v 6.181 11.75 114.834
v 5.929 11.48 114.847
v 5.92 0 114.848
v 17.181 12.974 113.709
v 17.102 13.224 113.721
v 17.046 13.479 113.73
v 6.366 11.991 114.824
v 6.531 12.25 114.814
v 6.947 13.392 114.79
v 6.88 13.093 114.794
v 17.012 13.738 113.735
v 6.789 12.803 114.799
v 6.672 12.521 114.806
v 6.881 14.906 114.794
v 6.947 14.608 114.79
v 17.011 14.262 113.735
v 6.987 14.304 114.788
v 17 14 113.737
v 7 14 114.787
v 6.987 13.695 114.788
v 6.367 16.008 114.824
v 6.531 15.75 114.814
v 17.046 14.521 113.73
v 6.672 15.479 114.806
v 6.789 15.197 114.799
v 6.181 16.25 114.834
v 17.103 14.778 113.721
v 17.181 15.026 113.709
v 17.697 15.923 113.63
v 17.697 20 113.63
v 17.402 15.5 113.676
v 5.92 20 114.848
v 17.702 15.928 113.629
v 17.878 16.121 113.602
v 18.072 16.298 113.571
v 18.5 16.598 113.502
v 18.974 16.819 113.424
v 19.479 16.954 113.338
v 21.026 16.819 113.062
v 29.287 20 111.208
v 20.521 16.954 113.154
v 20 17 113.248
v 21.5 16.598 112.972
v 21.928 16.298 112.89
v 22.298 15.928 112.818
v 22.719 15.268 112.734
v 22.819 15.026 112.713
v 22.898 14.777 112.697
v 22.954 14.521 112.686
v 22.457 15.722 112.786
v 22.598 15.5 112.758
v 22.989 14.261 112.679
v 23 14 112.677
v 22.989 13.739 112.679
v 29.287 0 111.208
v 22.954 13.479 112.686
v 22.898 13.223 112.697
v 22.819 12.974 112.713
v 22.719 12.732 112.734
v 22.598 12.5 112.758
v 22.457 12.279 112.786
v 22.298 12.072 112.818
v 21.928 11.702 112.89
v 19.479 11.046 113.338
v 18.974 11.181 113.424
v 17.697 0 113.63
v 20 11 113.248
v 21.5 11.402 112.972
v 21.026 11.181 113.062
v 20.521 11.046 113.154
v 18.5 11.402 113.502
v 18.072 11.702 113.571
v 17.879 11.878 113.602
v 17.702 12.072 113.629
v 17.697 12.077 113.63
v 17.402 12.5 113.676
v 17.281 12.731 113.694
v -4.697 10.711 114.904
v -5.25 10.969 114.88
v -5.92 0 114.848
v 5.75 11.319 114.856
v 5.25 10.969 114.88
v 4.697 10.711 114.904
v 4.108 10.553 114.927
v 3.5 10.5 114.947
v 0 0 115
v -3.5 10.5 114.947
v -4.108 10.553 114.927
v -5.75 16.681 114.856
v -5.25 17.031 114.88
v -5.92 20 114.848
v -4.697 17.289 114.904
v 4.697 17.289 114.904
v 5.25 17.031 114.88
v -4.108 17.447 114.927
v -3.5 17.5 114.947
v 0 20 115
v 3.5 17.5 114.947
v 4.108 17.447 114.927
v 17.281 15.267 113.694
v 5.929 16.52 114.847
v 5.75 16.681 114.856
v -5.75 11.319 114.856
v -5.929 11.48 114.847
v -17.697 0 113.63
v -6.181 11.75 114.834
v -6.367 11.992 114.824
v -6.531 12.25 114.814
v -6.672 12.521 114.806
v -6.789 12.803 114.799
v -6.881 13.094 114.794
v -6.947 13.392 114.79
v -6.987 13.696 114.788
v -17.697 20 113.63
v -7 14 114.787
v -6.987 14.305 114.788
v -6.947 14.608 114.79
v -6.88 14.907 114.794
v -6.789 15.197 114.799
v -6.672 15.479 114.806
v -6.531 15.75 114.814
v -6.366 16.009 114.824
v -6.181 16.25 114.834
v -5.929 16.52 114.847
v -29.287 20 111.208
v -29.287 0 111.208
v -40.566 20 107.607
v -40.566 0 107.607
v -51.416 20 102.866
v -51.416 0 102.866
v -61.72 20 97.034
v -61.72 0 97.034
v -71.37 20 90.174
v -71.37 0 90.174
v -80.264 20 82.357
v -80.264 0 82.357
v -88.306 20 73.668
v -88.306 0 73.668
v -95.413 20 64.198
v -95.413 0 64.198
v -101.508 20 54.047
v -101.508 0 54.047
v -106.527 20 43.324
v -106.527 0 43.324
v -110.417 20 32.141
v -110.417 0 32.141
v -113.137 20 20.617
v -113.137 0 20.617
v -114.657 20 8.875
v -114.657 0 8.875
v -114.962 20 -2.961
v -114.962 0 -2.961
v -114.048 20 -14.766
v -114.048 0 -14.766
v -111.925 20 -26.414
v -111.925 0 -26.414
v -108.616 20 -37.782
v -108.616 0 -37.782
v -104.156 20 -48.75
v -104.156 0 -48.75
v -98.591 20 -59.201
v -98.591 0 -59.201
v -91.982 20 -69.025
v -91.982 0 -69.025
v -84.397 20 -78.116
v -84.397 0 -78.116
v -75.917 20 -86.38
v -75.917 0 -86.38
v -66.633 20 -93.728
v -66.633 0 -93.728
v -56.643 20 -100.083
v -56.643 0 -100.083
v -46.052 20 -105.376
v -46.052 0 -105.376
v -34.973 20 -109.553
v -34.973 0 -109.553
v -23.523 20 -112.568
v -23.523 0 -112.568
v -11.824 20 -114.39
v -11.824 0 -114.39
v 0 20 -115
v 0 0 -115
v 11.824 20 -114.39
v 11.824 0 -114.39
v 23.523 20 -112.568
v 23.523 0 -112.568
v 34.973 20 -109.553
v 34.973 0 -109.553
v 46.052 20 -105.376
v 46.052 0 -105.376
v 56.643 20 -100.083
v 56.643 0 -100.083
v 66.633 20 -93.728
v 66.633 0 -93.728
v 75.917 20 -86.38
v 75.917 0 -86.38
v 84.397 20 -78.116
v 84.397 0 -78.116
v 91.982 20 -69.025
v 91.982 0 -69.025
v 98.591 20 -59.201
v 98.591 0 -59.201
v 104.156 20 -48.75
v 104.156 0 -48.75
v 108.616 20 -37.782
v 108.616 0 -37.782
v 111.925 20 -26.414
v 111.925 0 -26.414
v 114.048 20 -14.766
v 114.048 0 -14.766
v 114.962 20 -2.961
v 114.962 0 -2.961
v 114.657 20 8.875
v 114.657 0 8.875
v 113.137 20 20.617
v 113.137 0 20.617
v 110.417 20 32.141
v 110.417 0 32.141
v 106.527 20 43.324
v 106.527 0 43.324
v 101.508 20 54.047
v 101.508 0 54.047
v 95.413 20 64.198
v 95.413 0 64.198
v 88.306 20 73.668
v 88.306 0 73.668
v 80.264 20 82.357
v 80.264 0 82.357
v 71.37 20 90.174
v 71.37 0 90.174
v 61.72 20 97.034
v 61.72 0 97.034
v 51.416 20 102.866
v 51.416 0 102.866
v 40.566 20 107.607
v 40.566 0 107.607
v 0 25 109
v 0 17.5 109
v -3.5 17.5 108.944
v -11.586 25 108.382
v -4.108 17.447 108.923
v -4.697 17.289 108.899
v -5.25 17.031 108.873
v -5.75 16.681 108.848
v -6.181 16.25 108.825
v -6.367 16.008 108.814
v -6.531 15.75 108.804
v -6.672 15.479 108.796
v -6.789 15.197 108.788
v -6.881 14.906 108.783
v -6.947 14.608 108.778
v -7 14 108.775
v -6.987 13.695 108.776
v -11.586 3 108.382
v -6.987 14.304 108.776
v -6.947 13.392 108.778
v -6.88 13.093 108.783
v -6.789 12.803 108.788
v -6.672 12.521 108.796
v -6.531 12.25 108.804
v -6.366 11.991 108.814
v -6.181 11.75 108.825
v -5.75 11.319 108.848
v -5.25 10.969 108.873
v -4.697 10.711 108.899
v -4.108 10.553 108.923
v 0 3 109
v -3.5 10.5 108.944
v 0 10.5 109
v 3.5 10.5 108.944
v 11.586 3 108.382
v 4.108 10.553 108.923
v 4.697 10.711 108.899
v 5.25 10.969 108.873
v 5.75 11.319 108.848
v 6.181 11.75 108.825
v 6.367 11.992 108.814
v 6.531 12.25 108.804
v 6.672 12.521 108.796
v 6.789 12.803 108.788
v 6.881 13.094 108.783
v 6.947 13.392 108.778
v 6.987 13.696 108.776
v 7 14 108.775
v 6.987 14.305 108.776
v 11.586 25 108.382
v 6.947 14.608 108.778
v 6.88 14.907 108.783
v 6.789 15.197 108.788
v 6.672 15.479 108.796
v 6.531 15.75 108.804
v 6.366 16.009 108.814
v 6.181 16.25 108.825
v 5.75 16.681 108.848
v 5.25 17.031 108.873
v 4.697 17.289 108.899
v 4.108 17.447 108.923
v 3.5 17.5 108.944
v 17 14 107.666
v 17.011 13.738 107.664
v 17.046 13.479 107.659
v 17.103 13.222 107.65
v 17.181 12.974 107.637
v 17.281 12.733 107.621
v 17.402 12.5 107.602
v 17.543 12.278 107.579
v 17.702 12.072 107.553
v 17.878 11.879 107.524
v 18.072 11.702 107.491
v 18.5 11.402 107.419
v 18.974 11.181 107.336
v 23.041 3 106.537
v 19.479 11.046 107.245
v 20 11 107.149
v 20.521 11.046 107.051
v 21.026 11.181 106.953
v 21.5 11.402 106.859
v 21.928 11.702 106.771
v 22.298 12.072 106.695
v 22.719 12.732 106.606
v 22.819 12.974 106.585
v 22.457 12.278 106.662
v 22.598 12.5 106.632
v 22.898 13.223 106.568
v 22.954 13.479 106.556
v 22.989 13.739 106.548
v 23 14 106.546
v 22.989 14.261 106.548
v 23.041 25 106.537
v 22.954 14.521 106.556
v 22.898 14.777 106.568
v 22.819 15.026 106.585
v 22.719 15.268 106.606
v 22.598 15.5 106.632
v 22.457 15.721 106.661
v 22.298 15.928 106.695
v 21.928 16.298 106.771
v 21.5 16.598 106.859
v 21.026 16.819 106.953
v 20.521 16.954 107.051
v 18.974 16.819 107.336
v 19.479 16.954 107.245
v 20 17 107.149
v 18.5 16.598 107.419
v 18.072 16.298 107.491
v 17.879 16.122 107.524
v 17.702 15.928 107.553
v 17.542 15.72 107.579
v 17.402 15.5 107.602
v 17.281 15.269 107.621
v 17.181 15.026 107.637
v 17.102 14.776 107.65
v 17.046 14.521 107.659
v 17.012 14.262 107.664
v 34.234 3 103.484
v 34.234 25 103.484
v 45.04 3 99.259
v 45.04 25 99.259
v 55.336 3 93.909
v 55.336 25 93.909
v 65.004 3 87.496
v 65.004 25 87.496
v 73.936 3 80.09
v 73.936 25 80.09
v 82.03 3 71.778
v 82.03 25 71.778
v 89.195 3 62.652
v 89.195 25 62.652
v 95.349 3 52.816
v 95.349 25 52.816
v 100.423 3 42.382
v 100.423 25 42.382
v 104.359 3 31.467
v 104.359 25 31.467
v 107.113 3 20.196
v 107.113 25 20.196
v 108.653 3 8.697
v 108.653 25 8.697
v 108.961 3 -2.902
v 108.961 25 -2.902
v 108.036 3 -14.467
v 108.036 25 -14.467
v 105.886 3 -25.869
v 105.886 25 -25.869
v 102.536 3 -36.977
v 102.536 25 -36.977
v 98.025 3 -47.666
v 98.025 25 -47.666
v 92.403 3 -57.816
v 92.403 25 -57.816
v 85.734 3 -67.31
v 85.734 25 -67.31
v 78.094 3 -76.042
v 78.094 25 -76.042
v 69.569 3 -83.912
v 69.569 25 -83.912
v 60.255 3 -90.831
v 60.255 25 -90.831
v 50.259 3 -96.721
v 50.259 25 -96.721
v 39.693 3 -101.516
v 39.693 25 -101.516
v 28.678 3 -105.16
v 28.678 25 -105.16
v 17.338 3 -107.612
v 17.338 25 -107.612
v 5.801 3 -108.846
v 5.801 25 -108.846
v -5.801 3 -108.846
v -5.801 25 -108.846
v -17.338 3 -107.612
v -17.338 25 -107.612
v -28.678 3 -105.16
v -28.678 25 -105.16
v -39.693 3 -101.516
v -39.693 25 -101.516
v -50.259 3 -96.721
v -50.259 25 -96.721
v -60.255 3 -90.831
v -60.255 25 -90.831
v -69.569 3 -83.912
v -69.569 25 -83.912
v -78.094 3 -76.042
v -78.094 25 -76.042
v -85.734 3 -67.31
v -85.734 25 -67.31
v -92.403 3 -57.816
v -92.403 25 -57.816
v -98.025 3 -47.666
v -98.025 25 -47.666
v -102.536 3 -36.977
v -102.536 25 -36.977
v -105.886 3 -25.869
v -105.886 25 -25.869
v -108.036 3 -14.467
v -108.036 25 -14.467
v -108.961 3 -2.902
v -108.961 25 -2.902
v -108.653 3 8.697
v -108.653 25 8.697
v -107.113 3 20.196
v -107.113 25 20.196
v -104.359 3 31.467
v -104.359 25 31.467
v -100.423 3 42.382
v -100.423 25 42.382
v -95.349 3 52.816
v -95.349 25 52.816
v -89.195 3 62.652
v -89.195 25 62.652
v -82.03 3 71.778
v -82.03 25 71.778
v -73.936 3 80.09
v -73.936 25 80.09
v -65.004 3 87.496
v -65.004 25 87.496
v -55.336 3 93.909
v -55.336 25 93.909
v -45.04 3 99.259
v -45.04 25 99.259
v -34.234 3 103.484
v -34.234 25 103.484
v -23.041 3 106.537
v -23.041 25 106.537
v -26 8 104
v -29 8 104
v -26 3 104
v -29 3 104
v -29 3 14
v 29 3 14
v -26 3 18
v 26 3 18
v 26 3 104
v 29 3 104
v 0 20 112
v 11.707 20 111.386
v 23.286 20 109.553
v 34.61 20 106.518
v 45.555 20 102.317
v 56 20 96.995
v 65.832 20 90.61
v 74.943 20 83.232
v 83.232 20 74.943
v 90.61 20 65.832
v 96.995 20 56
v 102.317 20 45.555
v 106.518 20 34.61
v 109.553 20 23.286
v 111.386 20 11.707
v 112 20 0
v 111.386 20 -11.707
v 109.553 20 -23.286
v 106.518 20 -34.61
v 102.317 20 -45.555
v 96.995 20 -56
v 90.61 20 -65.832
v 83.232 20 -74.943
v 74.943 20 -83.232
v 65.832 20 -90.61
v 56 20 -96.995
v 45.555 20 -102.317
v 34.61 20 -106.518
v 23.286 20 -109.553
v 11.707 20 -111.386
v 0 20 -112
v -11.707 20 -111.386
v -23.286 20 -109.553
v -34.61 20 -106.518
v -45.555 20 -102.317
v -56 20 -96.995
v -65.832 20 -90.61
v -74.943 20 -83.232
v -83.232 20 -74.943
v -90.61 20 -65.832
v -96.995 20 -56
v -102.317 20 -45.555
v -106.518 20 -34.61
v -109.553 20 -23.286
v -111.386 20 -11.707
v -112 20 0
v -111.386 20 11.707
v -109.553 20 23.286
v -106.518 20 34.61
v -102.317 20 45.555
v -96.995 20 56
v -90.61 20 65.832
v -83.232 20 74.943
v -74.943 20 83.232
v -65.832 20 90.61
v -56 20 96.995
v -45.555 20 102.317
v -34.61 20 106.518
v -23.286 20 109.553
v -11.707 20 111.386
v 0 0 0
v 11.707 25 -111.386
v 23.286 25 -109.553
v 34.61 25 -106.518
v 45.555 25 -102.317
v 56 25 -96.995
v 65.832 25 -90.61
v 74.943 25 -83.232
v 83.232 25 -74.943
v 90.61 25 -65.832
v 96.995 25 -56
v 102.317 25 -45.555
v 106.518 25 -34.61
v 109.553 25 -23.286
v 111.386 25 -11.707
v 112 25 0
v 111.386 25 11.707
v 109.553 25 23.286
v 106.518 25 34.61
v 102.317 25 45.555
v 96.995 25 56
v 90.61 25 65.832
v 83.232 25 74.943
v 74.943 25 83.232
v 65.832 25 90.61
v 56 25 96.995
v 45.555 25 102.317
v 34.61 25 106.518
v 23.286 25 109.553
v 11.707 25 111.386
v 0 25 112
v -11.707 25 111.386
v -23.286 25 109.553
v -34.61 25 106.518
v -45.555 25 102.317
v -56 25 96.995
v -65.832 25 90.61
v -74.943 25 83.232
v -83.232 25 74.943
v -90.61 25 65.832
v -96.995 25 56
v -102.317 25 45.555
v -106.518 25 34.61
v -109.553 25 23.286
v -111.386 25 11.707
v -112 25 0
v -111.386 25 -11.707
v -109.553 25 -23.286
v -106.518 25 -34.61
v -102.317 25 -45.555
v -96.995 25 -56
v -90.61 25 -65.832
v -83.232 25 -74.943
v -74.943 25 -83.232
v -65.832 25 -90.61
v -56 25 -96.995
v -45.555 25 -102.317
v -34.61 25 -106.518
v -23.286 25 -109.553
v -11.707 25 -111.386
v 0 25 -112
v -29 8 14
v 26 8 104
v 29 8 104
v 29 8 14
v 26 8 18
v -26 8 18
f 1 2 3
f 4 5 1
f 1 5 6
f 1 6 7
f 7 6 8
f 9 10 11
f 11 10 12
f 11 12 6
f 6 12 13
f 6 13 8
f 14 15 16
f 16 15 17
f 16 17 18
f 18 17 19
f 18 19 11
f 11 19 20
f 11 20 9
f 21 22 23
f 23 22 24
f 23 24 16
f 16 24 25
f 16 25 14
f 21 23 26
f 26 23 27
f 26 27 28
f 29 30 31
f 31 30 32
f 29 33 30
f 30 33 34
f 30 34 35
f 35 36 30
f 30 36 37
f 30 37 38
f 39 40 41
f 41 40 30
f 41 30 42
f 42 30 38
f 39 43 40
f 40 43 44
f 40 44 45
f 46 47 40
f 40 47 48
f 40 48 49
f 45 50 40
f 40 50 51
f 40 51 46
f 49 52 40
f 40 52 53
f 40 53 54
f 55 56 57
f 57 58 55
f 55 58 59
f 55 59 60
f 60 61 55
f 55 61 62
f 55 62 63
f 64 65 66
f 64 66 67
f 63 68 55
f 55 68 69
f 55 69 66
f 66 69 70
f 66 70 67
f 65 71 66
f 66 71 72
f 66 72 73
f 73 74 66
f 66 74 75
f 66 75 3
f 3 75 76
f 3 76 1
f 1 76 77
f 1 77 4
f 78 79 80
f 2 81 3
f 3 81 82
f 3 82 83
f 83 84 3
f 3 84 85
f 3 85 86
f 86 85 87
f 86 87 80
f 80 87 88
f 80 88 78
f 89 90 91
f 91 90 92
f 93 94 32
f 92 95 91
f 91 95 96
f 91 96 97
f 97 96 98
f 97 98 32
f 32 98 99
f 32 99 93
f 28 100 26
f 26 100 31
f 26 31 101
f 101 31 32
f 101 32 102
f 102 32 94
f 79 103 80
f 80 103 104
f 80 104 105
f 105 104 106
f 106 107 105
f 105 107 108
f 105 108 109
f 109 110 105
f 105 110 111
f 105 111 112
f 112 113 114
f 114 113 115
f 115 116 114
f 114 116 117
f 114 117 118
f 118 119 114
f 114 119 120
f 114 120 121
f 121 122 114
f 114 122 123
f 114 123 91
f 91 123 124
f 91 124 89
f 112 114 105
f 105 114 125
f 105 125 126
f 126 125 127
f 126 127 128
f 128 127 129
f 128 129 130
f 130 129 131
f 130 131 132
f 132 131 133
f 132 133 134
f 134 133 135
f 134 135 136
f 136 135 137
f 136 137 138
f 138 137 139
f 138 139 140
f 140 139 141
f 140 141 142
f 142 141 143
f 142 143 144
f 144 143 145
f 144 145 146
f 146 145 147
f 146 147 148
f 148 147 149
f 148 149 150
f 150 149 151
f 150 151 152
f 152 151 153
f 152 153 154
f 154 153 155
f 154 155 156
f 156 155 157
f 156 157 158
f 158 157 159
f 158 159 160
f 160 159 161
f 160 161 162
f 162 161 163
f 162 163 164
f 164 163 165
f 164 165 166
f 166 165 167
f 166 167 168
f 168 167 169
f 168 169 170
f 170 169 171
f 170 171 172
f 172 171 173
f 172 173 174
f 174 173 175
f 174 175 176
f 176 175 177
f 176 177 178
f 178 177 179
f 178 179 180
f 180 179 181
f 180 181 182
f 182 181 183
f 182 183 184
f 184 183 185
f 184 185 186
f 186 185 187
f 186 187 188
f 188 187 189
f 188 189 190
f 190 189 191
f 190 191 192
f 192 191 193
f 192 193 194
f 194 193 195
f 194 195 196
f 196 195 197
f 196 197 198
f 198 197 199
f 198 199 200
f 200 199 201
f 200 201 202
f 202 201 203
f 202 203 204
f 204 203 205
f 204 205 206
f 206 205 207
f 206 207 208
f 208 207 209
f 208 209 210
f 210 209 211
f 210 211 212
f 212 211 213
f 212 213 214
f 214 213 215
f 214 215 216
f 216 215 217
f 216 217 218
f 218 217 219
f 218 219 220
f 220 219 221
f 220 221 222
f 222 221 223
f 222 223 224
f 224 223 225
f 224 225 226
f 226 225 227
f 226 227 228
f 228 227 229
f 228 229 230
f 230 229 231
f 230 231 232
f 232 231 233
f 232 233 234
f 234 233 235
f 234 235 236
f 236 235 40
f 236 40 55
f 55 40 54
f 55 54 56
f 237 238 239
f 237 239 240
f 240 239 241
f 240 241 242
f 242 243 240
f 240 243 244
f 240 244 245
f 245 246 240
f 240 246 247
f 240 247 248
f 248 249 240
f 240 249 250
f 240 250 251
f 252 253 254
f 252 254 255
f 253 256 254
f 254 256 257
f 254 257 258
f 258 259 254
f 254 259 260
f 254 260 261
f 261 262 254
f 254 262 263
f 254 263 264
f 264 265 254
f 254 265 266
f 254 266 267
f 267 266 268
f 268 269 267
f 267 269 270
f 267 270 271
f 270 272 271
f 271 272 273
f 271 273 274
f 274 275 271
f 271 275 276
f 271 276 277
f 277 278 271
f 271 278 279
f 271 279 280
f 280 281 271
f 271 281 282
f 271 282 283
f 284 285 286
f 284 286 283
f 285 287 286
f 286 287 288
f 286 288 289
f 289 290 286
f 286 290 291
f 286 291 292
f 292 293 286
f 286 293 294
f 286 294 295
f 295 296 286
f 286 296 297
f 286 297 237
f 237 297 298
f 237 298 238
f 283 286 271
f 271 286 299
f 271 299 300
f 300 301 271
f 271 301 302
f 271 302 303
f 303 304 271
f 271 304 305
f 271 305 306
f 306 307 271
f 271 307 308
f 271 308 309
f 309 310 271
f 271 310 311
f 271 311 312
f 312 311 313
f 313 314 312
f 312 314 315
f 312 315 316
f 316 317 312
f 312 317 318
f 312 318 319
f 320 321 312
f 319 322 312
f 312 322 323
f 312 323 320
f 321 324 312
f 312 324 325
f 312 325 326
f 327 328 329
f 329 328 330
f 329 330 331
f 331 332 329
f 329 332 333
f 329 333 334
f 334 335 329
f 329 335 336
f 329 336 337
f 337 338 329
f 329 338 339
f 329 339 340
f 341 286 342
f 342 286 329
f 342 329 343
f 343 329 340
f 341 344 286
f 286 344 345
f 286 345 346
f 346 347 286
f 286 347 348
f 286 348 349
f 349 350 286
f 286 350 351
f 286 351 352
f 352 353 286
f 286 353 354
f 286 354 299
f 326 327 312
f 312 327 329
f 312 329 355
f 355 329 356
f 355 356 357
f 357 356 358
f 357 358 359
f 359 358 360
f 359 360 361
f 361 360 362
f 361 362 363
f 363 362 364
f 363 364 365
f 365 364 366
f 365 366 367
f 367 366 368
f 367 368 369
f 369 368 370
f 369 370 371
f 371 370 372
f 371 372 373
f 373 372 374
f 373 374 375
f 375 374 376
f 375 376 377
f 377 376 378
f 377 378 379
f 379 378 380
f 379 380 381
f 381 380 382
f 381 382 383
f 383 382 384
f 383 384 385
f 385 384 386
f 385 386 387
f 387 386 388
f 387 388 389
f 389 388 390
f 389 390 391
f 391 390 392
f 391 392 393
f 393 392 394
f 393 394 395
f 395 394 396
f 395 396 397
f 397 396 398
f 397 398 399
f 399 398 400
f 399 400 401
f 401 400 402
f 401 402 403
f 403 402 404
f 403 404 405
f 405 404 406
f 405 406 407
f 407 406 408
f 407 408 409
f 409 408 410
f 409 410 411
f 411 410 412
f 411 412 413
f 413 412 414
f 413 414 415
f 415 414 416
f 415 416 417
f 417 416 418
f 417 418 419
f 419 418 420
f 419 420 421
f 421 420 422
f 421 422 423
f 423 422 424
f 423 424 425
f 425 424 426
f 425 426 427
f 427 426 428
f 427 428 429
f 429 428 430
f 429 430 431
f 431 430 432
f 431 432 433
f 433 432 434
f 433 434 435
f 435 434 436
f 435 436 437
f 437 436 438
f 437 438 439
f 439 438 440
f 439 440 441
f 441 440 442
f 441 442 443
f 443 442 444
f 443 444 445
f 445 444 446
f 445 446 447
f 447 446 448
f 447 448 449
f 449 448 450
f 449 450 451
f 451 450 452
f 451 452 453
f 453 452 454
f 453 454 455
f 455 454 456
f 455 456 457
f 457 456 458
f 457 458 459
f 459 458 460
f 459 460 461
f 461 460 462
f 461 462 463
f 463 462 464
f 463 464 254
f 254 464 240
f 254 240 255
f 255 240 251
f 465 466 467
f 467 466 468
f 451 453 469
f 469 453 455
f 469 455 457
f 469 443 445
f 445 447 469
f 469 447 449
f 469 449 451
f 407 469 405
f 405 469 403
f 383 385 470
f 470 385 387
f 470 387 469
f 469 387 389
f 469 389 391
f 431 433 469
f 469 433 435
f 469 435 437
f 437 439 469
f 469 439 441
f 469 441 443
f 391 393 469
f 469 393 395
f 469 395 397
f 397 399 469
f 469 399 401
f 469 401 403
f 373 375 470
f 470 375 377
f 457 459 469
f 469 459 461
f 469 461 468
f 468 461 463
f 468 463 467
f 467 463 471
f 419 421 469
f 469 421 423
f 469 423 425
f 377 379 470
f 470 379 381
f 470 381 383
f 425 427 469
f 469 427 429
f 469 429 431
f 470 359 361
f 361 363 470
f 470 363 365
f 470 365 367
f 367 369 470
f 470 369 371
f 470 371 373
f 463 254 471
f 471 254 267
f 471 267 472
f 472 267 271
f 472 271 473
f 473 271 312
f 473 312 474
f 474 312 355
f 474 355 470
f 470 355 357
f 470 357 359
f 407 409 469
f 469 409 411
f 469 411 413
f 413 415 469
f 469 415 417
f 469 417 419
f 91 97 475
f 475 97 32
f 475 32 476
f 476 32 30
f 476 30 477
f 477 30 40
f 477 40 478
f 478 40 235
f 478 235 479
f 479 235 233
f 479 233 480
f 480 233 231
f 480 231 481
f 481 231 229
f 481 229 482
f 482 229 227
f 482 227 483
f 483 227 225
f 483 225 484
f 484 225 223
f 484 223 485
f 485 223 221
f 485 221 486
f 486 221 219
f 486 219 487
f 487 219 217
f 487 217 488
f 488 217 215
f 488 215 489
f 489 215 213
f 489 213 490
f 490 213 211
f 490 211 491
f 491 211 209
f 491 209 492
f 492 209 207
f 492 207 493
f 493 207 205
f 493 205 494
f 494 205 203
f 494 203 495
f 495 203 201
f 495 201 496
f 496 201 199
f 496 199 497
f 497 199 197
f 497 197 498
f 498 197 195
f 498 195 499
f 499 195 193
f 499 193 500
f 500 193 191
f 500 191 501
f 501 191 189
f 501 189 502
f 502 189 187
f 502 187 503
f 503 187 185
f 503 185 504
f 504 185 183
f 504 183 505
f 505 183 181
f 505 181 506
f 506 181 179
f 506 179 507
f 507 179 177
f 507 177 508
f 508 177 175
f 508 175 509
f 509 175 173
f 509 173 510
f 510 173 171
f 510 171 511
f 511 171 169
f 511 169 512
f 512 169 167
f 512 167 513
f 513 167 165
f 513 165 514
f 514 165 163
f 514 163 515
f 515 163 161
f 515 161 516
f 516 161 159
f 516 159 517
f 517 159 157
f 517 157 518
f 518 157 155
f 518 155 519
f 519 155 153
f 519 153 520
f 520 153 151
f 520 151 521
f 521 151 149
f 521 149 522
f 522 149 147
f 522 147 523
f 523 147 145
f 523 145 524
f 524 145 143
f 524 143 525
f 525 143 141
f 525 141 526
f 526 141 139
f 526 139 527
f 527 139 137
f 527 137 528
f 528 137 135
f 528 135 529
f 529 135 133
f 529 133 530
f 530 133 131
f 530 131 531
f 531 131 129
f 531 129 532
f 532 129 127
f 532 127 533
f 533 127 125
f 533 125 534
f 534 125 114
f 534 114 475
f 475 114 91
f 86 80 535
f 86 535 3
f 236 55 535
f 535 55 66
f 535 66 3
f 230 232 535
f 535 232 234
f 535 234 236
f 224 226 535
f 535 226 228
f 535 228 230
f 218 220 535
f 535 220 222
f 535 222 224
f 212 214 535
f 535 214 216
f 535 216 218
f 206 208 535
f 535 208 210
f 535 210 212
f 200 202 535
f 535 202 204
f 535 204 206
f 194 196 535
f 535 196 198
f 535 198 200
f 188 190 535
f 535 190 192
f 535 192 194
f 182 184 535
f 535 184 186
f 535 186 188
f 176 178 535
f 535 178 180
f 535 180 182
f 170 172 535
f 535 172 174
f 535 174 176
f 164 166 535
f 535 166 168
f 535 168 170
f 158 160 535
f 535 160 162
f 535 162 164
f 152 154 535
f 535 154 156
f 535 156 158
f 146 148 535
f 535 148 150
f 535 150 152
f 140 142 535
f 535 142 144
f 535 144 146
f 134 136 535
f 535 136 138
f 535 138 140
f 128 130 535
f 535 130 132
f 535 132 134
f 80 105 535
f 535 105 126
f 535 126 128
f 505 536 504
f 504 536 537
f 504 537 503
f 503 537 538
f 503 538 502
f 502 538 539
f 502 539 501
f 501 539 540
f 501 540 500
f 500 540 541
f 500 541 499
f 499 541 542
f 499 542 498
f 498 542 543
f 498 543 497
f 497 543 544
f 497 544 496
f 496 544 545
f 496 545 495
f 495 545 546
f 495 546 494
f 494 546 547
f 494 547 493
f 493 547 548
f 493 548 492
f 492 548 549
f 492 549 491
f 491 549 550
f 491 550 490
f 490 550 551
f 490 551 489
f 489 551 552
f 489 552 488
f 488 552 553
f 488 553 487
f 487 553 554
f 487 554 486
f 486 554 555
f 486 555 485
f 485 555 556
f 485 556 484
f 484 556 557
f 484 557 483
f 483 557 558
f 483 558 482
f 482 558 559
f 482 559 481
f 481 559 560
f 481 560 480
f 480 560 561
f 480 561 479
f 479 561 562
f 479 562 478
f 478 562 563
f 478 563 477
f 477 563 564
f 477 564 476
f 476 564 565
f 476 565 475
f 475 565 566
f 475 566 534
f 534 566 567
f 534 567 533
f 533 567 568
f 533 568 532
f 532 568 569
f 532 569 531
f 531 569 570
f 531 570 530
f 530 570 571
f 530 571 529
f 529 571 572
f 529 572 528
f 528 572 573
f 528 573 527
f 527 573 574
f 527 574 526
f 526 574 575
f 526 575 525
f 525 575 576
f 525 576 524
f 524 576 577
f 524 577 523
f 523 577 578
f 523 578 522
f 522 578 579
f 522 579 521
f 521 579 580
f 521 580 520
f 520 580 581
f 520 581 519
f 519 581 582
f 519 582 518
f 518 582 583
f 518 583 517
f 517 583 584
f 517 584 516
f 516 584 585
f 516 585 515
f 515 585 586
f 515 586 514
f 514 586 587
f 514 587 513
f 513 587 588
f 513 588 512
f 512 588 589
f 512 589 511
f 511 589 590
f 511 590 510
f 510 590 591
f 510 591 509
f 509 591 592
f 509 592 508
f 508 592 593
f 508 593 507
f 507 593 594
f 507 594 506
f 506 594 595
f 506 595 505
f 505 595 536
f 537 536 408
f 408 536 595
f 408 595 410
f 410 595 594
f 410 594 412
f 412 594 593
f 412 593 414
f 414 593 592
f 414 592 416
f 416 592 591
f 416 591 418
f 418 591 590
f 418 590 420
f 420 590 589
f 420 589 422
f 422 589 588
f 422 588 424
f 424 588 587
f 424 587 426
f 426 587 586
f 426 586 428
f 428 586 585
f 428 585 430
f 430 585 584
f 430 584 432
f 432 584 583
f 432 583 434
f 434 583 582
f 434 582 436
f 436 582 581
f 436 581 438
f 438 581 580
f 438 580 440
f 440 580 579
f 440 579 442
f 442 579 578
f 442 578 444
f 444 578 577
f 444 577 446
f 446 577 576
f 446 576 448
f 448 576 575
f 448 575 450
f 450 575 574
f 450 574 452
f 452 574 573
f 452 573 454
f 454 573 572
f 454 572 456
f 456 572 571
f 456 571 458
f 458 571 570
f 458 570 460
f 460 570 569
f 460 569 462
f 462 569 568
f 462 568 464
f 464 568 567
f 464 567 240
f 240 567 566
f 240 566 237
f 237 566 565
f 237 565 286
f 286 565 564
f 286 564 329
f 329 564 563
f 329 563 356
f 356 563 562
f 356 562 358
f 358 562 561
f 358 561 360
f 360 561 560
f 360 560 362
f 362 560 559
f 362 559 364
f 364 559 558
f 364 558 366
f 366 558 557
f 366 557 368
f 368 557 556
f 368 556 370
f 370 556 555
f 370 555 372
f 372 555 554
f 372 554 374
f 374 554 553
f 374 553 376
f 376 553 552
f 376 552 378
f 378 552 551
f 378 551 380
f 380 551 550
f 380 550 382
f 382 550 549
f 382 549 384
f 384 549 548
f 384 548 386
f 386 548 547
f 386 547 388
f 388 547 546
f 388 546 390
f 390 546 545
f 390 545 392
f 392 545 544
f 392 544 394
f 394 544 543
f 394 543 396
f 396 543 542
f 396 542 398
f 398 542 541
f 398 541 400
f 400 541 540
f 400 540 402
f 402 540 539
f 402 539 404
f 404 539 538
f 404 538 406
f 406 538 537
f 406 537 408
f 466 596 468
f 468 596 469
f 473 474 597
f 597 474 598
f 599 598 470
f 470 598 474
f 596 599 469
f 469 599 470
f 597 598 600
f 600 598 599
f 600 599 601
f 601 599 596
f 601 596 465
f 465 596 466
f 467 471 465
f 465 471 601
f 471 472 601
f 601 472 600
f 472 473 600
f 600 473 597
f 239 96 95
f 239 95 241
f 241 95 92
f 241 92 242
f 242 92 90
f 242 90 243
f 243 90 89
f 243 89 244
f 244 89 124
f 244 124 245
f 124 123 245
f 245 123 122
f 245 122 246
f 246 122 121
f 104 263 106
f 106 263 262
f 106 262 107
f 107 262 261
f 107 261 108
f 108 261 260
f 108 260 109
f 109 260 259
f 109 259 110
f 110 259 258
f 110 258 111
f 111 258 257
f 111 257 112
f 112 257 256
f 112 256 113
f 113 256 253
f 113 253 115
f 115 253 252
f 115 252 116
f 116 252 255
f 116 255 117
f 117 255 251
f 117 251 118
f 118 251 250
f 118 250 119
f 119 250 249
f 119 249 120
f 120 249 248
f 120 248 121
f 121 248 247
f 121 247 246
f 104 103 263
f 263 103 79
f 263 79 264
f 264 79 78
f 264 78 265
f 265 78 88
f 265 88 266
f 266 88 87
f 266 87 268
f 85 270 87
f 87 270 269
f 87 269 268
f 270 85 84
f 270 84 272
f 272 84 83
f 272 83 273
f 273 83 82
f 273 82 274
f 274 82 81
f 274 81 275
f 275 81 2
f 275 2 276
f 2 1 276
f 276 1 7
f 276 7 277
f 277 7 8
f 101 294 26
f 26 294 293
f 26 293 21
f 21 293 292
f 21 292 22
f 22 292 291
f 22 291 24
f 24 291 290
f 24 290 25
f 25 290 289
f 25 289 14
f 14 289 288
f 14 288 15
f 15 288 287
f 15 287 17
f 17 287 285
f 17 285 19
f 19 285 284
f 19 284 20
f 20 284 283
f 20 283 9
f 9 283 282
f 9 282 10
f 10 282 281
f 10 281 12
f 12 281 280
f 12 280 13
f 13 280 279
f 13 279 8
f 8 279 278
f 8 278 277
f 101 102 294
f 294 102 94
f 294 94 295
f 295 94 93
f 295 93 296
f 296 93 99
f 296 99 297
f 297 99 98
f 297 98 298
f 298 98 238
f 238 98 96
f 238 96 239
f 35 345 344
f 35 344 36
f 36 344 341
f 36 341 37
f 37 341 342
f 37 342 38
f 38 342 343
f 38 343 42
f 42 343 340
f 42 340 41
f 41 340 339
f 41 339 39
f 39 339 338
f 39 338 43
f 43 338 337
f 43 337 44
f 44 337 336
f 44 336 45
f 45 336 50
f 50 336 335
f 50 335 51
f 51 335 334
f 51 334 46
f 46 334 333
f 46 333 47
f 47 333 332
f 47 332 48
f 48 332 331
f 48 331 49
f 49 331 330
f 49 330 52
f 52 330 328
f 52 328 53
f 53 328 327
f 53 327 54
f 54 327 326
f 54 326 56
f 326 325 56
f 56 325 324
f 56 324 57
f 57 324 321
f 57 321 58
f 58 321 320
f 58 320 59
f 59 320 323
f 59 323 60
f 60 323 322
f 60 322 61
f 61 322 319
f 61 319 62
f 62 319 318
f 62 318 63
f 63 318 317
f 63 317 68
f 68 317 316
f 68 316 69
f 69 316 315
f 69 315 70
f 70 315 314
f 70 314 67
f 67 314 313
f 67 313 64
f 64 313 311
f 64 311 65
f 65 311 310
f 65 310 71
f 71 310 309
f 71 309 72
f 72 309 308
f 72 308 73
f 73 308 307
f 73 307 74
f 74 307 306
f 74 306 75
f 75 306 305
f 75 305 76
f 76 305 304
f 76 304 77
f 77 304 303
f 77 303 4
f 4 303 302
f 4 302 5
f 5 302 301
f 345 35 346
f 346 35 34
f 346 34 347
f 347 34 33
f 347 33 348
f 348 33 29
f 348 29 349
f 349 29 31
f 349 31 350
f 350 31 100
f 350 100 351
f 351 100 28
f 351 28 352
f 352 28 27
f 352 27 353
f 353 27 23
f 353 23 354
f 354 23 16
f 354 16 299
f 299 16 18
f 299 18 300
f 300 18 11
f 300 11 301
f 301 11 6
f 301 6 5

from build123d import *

# Parameters (mm, degrees)
SKETCH2_R           = 115
BOSS_EXTRUDE1_DEPTH = 20
SKETCH3_R           = 112
BOSS_EXTRUDE5_DEPTH = 5
SKETCH6_R           = 109
CUT_EXTRUDE2_DEPTH  = 22
SKETCH9_W           = 58
SKETCH9_H           = 90
BOSS_EXTRUDE9_DEPTH = 5
SKETCH10_W          = 52
SKETCH10_H          = 86
CUT_EXTRUDE3_DEPTH  = 5
CUT_EXTRUDE4_DEPTH  = 165.544826719
SKETCH13_R          = 3
CUT_EXTRUDE5_DEPTH  = 165.544826874


with BuildPart() as part:
    # Sketch2 → Boss-Extrude1 (new body)
    with BuildSketch(Plane(origin=(0, 0, 0), x_dir=(1, 0, 0), z_dir=(0, 1, 0))):
        with Locations(Location((0, 0, 0), (0, 0, 270))):
            Circle(SKETCH2_R)
    extrude(amount=BOSS_EXTRUDE1_DEPTH)

    # Sketch3 → Boss-Extrude5 (add)
    with BuildSketch(Plane(origin=(0, 20, 0), x_dir=(1, 0, 0), z_dir=(0, 1, 0))):
        with Locations(Location((0, 0, 0), (0, 0, 270))):
            Circle(SKETCH3_R)
    extrude(amount=BOSS_EXTRUDE5_DEPTH)

    # Sketch6 → Cut-Extrude2 (cut)
    with BuildSketch(Plane(origin=(0, 25, 0), x_dir=(1, 0, 0), z_dir=(0, 1, 0))):
        with Locations(Location((0, 0, 0), (0, 0, 270))):
            Circle(SKETCH6_R)
    extrude(amount=-CUT_EXTRUDE2_DEPTH, mode=Mode.SUBTRACT)

    # Sketch9 → Boss-Extrude9 (add)
    with BuildSketch(Plane(origin=(0, 3, 0), x_dir=(1, 0, 0), z_dir=(0, 1, 0))):
        with Locations((0, -59)):
            Rectangle(SKETCH9_W, SKETCH9_H)
    extrude(amount=BOSS_EXTRUDE9_DEPTH)

    # Sketch10 → Cut-Extrude3 (cut)
    with BuildSketch(Plane(origin=(0, 8, 0), x_dir=(1, 0, 0), z_dir=(0, 1, 0))):
        with Locations((0, -61)):
            Rectangle(SKETCH10_W, SKETCH10_H)
    extrude(amount=-CUT_EXTRUDE3_DEPTH, mode=Mode.SUBTRACT)

    # Sketch12 → Cut-Extrude4 (cut, through all)
    with BuildSketch(Plane.XY):
        with BuildLine():
            Line((-3.5, 17.5), (3.5, 17.5))
            ThreePointArc((3.5, 17.5), (7, 14), (3.5, 10.5))
            Line((3.5, 10.5), (-3.5, 10.5))
            ThreePointArc((-3.5, 10.5), (-7, 14), (-3.5, 17.5))
        make_face()
    extrude(amount=CUT_EXTRUDE4_DEPTH, mode=Mode.SUBTRACT)

    # Sketch13 → Cut-Extrude5 (cut, through all)
    with BuildSketch(Plane.XY):
        with Locations(Location((20, 14, 0), (0, 0, 180))):
            Circle(SKETCH13_R)
    extrude(amount=CUT_EXTRUDE5_DEPTH, mode=Mode.SUBTRACT)


solid = part.part
